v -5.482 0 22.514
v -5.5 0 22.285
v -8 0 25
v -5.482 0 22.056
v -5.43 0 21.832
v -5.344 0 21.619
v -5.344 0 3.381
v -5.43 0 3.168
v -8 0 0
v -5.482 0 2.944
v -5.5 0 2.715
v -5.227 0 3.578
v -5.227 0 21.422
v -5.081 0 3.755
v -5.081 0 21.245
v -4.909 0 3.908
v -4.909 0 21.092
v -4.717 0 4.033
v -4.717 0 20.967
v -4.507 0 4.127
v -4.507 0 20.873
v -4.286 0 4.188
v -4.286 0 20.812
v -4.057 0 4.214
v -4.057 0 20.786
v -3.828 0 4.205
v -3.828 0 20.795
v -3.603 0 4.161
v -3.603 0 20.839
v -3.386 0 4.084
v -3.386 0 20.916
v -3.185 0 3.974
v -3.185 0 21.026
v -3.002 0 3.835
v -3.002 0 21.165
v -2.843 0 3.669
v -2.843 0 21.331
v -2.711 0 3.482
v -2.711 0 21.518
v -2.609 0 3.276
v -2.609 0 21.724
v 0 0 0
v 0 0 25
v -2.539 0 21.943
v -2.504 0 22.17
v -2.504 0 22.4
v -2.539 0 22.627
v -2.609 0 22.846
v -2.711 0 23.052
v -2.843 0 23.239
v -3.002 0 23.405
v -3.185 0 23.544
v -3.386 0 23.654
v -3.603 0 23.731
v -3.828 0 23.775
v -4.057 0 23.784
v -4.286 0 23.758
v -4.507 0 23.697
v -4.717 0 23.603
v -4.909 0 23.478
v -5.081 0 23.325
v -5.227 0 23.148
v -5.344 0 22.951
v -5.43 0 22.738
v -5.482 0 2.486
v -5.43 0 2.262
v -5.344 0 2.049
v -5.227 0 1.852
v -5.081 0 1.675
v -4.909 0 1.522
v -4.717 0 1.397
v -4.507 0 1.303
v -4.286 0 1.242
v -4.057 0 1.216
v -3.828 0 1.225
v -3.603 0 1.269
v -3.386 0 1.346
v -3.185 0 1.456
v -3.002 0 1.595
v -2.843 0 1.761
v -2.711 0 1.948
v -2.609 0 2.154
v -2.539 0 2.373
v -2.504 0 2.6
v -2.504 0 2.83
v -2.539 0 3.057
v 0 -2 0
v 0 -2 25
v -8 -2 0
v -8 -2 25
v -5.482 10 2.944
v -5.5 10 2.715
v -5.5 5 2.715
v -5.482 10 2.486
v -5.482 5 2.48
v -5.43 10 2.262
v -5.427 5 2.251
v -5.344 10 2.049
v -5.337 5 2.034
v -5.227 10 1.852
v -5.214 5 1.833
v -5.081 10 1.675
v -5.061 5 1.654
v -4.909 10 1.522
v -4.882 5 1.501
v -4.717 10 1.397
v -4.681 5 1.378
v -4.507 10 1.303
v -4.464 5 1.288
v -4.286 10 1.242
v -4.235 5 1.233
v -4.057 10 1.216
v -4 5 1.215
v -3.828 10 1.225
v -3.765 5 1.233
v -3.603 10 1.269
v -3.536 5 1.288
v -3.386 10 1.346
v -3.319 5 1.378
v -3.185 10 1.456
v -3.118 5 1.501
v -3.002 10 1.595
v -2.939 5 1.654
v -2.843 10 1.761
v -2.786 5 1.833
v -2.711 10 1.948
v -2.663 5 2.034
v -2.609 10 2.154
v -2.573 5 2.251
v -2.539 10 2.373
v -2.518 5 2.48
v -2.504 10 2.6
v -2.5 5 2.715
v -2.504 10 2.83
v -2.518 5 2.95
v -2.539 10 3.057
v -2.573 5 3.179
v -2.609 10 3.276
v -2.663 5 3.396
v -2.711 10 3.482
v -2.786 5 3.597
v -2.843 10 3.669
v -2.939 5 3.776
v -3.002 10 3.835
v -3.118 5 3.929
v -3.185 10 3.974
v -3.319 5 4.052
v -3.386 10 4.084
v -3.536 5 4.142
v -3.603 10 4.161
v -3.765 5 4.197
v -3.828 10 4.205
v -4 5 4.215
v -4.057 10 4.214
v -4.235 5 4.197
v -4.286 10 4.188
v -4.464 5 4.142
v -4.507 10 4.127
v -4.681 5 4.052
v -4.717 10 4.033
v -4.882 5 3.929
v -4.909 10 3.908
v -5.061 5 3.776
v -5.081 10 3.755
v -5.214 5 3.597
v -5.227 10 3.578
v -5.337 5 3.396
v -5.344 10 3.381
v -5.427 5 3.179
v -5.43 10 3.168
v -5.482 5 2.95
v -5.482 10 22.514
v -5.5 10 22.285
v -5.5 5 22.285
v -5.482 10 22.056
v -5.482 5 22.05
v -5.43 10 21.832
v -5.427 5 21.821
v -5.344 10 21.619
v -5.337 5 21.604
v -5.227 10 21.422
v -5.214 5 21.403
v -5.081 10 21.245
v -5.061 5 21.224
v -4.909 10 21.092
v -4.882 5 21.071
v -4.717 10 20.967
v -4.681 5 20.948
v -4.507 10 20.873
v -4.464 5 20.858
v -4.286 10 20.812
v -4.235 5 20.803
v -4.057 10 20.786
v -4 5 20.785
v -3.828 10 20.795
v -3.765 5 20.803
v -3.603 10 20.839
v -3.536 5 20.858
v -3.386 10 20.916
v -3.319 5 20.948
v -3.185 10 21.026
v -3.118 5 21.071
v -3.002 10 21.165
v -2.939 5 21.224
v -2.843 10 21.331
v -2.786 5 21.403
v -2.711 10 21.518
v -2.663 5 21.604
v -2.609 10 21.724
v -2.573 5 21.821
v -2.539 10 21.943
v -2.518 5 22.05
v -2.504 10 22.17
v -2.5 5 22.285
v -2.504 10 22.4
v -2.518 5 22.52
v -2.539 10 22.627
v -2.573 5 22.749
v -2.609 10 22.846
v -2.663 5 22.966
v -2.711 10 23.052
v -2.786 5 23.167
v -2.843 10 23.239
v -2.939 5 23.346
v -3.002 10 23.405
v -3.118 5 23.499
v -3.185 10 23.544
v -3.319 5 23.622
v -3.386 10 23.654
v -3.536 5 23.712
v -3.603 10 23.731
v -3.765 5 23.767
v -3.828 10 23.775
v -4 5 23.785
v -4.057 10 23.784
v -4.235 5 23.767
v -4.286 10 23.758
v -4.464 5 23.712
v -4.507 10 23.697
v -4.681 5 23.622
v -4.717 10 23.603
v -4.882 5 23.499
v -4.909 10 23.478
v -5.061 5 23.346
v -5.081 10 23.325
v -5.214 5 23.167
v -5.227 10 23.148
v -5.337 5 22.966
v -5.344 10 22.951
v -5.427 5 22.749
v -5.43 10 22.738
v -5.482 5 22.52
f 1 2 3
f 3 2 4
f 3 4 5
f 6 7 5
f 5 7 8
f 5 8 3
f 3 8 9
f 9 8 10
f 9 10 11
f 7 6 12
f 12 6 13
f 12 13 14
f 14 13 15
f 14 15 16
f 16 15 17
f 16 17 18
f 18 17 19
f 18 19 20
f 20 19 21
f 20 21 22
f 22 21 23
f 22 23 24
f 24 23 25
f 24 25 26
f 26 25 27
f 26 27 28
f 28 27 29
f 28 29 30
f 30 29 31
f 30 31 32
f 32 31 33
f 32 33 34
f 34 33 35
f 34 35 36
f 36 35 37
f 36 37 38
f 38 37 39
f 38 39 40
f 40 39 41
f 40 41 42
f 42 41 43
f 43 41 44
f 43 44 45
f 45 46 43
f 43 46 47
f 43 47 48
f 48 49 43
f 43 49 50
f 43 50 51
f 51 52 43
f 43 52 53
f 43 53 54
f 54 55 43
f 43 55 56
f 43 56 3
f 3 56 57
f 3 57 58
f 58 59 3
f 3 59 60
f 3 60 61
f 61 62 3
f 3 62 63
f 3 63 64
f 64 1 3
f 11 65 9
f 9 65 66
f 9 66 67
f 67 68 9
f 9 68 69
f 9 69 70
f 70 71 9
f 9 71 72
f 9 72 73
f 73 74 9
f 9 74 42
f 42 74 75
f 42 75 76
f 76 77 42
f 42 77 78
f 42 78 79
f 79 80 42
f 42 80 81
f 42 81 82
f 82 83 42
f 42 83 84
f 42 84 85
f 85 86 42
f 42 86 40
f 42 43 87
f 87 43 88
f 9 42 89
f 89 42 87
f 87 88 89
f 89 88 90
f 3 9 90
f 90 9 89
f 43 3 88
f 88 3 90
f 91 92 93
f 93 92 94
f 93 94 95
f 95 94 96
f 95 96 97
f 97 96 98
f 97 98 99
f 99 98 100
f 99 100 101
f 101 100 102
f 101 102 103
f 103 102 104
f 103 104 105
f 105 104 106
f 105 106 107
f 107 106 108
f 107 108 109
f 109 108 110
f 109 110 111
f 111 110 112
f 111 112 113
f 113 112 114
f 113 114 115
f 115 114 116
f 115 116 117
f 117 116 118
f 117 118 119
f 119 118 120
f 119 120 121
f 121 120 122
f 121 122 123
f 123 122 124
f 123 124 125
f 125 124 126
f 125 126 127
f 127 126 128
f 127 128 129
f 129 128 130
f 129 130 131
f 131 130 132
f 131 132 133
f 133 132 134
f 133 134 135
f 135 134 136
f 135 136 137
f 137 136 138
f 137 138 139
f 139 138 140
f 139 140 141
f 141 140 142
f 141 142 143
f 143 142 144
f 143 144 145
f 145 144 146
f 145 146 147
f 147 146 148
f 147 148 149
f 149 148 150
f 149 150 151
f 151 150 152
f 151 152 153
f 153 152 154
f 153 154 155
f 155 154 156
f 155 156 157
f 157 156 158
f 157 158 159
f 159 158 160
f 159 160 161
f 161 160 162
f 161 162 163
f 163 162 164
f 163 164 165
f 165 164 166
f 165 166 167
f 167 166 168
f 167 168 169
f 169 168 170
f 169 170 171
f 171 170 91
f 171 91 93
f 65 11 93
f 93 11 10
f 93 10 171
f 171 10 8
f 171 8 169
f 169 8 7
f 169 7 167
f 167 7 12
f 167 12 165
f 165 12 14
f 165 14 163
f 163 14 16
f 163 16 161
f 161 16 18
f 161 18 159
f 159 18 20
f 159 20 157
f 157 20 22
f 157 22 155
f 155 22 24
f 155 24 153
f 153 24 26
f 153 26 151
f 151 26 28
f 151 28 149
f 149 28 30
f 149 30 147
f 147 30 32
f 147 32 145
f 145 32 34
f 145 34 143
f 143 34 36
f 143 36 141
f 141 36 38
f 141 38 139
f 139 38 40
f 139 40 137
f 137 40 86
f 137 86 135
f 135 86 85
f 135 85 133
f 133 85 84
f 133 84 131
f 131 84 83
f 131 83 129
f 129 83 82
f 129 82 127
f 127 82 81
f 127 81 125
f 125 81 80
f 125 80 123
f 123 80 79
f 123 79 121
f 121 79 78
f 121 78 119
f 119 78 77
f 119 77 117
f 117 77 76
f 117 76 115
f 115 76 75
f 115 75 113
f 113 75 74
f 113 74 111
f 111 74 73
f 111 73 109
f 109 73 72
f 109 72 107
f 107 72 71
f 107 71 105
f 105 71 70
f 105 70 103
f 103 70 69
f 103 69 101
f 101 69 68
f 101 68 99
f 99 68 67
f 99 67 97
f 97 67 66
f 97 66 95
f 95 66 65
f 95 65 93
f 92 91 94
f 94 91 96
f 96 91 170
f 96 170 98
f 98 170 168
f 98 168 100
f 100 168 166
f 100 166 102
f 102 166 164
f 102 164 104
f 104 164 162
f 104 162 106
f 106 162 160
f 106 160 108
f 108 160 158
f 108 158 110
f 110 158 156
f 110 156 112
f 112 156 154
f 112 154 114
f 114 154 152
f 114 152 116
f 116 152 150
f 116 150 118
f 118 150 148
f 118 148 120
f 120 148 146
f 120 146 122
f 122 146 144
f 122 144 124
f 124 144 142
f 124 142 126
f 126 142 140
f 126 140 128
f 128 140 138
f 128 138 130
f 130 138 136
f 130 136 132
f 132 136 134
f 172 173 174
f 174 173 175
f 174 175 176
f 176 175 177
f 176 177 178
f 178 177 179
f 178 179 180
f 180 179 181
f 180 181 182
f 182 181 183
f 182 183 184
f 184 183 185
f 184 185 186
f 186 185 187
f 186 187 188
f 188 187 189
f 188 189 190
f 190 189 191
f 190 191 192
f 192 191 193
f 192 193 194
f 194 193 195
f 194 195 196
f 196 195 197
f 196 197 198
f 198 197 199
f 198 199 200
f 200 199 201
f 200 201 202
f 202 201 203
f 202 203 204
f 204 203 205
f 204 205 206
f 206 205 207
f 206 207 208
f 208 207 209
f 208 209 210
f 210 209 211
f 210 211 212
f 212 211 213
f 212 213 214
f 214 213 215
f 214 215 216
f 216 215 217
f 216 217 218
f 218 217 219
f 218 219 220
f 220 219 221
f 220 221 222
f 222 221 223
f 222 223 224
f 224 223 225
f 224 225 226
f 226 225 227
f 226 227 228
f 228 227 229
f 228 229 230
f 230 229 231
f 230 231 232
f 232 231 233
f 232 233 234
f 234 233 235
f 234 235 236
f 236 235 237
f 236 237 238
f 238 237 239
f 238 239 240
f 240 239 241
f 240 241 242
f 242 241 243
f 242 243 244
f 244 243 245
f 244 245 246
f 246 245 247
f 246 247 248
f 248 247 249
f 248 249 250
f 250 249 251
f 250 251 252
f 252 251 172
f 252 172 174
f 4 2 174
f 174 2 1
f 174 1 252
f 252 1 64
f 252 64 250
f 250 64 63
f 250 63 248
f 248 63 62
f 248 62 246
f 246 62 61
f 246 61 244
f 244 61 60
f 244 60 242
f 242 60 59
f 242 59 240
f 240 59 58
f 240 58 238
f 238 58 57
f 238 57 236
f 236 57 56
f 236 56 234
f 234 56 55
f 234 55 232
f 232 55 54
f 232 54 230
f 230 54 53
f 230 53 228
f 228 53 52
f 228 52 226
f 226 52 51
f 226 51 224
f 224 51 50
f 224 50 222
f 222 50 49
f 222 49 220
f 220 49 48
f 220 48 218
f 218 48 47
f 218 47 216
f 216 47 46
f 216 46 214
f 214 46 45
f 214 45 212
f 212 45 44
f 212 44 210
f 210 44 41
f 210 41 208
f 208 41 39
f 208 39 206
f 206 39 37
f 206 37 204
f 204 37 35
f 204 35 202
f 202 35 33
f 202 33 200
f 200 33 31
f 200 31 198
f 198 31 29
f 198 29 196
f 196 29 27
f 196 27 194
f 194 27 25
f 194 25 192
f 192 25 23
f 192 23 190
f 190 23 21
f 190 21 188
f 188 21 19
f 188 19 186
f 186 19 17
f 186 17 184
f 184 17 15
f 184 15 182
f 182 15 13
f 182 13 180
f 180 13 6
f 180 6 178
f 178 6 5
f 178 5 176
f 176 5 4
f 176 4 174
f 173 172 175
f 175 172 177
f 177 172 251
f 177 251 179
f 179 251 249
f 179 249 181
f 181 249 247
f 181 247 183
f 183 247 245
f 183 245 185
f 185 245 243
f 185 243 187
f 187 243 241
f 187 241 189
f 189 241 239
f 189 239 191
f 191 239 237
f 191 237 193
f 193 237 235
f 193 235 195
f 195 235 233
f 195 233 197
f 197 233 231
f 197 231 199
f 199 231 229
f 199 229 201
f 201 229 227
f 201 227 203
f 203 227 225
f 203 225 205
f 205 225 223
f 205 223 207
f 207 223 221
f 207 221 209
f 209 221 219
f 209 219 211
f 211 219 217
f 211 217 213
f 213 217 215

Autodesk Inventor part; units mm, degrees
ref_plane "YZ Plane" through (0, 0, 0) normal (1, 0, 0) x (0, 1, 0)
ref_plane "XZ Plane" through (0, 0, 0) normal (0, 1, 0) x (-1, 0, 0)
ref_plane "XY Plane" through (0, 0, 0) normal (0, 0, 1) x (1, 0, 0)
sketch "草图1" plane through (0, 0, 0) normal (0, 1, 0) x (-1, 0, 0)
  line L0 (8, 25) -> (0, 25)
  line L1 (0, 25) -> (0, 0)
  line L2 (0, 0) -> (8, 0)
  line L3 (8, 0) -> (8, 25)
  circle A0 centre (4, 22.285) radius 1.5
  line L4 (8, 12.5) -> (0, 12.5)
  line L5 (4, 25) -> (4, 0)
  circle A1 centre (4, 2.715) radius 1.5
  dimension "d0" = 25
  dimension "d1" = 8
  dimension "d2" = 3
  dimension "d6" = 19.57
extrude "拉伸1" add sketch "草图1" along normal blind 10 contours L5 A0 | A0 L5 | A1 L5 | L5 A1
extrude "拉伸2" add sketch "草图1" against normal blind 2
properties part number "锁销" material "水"
